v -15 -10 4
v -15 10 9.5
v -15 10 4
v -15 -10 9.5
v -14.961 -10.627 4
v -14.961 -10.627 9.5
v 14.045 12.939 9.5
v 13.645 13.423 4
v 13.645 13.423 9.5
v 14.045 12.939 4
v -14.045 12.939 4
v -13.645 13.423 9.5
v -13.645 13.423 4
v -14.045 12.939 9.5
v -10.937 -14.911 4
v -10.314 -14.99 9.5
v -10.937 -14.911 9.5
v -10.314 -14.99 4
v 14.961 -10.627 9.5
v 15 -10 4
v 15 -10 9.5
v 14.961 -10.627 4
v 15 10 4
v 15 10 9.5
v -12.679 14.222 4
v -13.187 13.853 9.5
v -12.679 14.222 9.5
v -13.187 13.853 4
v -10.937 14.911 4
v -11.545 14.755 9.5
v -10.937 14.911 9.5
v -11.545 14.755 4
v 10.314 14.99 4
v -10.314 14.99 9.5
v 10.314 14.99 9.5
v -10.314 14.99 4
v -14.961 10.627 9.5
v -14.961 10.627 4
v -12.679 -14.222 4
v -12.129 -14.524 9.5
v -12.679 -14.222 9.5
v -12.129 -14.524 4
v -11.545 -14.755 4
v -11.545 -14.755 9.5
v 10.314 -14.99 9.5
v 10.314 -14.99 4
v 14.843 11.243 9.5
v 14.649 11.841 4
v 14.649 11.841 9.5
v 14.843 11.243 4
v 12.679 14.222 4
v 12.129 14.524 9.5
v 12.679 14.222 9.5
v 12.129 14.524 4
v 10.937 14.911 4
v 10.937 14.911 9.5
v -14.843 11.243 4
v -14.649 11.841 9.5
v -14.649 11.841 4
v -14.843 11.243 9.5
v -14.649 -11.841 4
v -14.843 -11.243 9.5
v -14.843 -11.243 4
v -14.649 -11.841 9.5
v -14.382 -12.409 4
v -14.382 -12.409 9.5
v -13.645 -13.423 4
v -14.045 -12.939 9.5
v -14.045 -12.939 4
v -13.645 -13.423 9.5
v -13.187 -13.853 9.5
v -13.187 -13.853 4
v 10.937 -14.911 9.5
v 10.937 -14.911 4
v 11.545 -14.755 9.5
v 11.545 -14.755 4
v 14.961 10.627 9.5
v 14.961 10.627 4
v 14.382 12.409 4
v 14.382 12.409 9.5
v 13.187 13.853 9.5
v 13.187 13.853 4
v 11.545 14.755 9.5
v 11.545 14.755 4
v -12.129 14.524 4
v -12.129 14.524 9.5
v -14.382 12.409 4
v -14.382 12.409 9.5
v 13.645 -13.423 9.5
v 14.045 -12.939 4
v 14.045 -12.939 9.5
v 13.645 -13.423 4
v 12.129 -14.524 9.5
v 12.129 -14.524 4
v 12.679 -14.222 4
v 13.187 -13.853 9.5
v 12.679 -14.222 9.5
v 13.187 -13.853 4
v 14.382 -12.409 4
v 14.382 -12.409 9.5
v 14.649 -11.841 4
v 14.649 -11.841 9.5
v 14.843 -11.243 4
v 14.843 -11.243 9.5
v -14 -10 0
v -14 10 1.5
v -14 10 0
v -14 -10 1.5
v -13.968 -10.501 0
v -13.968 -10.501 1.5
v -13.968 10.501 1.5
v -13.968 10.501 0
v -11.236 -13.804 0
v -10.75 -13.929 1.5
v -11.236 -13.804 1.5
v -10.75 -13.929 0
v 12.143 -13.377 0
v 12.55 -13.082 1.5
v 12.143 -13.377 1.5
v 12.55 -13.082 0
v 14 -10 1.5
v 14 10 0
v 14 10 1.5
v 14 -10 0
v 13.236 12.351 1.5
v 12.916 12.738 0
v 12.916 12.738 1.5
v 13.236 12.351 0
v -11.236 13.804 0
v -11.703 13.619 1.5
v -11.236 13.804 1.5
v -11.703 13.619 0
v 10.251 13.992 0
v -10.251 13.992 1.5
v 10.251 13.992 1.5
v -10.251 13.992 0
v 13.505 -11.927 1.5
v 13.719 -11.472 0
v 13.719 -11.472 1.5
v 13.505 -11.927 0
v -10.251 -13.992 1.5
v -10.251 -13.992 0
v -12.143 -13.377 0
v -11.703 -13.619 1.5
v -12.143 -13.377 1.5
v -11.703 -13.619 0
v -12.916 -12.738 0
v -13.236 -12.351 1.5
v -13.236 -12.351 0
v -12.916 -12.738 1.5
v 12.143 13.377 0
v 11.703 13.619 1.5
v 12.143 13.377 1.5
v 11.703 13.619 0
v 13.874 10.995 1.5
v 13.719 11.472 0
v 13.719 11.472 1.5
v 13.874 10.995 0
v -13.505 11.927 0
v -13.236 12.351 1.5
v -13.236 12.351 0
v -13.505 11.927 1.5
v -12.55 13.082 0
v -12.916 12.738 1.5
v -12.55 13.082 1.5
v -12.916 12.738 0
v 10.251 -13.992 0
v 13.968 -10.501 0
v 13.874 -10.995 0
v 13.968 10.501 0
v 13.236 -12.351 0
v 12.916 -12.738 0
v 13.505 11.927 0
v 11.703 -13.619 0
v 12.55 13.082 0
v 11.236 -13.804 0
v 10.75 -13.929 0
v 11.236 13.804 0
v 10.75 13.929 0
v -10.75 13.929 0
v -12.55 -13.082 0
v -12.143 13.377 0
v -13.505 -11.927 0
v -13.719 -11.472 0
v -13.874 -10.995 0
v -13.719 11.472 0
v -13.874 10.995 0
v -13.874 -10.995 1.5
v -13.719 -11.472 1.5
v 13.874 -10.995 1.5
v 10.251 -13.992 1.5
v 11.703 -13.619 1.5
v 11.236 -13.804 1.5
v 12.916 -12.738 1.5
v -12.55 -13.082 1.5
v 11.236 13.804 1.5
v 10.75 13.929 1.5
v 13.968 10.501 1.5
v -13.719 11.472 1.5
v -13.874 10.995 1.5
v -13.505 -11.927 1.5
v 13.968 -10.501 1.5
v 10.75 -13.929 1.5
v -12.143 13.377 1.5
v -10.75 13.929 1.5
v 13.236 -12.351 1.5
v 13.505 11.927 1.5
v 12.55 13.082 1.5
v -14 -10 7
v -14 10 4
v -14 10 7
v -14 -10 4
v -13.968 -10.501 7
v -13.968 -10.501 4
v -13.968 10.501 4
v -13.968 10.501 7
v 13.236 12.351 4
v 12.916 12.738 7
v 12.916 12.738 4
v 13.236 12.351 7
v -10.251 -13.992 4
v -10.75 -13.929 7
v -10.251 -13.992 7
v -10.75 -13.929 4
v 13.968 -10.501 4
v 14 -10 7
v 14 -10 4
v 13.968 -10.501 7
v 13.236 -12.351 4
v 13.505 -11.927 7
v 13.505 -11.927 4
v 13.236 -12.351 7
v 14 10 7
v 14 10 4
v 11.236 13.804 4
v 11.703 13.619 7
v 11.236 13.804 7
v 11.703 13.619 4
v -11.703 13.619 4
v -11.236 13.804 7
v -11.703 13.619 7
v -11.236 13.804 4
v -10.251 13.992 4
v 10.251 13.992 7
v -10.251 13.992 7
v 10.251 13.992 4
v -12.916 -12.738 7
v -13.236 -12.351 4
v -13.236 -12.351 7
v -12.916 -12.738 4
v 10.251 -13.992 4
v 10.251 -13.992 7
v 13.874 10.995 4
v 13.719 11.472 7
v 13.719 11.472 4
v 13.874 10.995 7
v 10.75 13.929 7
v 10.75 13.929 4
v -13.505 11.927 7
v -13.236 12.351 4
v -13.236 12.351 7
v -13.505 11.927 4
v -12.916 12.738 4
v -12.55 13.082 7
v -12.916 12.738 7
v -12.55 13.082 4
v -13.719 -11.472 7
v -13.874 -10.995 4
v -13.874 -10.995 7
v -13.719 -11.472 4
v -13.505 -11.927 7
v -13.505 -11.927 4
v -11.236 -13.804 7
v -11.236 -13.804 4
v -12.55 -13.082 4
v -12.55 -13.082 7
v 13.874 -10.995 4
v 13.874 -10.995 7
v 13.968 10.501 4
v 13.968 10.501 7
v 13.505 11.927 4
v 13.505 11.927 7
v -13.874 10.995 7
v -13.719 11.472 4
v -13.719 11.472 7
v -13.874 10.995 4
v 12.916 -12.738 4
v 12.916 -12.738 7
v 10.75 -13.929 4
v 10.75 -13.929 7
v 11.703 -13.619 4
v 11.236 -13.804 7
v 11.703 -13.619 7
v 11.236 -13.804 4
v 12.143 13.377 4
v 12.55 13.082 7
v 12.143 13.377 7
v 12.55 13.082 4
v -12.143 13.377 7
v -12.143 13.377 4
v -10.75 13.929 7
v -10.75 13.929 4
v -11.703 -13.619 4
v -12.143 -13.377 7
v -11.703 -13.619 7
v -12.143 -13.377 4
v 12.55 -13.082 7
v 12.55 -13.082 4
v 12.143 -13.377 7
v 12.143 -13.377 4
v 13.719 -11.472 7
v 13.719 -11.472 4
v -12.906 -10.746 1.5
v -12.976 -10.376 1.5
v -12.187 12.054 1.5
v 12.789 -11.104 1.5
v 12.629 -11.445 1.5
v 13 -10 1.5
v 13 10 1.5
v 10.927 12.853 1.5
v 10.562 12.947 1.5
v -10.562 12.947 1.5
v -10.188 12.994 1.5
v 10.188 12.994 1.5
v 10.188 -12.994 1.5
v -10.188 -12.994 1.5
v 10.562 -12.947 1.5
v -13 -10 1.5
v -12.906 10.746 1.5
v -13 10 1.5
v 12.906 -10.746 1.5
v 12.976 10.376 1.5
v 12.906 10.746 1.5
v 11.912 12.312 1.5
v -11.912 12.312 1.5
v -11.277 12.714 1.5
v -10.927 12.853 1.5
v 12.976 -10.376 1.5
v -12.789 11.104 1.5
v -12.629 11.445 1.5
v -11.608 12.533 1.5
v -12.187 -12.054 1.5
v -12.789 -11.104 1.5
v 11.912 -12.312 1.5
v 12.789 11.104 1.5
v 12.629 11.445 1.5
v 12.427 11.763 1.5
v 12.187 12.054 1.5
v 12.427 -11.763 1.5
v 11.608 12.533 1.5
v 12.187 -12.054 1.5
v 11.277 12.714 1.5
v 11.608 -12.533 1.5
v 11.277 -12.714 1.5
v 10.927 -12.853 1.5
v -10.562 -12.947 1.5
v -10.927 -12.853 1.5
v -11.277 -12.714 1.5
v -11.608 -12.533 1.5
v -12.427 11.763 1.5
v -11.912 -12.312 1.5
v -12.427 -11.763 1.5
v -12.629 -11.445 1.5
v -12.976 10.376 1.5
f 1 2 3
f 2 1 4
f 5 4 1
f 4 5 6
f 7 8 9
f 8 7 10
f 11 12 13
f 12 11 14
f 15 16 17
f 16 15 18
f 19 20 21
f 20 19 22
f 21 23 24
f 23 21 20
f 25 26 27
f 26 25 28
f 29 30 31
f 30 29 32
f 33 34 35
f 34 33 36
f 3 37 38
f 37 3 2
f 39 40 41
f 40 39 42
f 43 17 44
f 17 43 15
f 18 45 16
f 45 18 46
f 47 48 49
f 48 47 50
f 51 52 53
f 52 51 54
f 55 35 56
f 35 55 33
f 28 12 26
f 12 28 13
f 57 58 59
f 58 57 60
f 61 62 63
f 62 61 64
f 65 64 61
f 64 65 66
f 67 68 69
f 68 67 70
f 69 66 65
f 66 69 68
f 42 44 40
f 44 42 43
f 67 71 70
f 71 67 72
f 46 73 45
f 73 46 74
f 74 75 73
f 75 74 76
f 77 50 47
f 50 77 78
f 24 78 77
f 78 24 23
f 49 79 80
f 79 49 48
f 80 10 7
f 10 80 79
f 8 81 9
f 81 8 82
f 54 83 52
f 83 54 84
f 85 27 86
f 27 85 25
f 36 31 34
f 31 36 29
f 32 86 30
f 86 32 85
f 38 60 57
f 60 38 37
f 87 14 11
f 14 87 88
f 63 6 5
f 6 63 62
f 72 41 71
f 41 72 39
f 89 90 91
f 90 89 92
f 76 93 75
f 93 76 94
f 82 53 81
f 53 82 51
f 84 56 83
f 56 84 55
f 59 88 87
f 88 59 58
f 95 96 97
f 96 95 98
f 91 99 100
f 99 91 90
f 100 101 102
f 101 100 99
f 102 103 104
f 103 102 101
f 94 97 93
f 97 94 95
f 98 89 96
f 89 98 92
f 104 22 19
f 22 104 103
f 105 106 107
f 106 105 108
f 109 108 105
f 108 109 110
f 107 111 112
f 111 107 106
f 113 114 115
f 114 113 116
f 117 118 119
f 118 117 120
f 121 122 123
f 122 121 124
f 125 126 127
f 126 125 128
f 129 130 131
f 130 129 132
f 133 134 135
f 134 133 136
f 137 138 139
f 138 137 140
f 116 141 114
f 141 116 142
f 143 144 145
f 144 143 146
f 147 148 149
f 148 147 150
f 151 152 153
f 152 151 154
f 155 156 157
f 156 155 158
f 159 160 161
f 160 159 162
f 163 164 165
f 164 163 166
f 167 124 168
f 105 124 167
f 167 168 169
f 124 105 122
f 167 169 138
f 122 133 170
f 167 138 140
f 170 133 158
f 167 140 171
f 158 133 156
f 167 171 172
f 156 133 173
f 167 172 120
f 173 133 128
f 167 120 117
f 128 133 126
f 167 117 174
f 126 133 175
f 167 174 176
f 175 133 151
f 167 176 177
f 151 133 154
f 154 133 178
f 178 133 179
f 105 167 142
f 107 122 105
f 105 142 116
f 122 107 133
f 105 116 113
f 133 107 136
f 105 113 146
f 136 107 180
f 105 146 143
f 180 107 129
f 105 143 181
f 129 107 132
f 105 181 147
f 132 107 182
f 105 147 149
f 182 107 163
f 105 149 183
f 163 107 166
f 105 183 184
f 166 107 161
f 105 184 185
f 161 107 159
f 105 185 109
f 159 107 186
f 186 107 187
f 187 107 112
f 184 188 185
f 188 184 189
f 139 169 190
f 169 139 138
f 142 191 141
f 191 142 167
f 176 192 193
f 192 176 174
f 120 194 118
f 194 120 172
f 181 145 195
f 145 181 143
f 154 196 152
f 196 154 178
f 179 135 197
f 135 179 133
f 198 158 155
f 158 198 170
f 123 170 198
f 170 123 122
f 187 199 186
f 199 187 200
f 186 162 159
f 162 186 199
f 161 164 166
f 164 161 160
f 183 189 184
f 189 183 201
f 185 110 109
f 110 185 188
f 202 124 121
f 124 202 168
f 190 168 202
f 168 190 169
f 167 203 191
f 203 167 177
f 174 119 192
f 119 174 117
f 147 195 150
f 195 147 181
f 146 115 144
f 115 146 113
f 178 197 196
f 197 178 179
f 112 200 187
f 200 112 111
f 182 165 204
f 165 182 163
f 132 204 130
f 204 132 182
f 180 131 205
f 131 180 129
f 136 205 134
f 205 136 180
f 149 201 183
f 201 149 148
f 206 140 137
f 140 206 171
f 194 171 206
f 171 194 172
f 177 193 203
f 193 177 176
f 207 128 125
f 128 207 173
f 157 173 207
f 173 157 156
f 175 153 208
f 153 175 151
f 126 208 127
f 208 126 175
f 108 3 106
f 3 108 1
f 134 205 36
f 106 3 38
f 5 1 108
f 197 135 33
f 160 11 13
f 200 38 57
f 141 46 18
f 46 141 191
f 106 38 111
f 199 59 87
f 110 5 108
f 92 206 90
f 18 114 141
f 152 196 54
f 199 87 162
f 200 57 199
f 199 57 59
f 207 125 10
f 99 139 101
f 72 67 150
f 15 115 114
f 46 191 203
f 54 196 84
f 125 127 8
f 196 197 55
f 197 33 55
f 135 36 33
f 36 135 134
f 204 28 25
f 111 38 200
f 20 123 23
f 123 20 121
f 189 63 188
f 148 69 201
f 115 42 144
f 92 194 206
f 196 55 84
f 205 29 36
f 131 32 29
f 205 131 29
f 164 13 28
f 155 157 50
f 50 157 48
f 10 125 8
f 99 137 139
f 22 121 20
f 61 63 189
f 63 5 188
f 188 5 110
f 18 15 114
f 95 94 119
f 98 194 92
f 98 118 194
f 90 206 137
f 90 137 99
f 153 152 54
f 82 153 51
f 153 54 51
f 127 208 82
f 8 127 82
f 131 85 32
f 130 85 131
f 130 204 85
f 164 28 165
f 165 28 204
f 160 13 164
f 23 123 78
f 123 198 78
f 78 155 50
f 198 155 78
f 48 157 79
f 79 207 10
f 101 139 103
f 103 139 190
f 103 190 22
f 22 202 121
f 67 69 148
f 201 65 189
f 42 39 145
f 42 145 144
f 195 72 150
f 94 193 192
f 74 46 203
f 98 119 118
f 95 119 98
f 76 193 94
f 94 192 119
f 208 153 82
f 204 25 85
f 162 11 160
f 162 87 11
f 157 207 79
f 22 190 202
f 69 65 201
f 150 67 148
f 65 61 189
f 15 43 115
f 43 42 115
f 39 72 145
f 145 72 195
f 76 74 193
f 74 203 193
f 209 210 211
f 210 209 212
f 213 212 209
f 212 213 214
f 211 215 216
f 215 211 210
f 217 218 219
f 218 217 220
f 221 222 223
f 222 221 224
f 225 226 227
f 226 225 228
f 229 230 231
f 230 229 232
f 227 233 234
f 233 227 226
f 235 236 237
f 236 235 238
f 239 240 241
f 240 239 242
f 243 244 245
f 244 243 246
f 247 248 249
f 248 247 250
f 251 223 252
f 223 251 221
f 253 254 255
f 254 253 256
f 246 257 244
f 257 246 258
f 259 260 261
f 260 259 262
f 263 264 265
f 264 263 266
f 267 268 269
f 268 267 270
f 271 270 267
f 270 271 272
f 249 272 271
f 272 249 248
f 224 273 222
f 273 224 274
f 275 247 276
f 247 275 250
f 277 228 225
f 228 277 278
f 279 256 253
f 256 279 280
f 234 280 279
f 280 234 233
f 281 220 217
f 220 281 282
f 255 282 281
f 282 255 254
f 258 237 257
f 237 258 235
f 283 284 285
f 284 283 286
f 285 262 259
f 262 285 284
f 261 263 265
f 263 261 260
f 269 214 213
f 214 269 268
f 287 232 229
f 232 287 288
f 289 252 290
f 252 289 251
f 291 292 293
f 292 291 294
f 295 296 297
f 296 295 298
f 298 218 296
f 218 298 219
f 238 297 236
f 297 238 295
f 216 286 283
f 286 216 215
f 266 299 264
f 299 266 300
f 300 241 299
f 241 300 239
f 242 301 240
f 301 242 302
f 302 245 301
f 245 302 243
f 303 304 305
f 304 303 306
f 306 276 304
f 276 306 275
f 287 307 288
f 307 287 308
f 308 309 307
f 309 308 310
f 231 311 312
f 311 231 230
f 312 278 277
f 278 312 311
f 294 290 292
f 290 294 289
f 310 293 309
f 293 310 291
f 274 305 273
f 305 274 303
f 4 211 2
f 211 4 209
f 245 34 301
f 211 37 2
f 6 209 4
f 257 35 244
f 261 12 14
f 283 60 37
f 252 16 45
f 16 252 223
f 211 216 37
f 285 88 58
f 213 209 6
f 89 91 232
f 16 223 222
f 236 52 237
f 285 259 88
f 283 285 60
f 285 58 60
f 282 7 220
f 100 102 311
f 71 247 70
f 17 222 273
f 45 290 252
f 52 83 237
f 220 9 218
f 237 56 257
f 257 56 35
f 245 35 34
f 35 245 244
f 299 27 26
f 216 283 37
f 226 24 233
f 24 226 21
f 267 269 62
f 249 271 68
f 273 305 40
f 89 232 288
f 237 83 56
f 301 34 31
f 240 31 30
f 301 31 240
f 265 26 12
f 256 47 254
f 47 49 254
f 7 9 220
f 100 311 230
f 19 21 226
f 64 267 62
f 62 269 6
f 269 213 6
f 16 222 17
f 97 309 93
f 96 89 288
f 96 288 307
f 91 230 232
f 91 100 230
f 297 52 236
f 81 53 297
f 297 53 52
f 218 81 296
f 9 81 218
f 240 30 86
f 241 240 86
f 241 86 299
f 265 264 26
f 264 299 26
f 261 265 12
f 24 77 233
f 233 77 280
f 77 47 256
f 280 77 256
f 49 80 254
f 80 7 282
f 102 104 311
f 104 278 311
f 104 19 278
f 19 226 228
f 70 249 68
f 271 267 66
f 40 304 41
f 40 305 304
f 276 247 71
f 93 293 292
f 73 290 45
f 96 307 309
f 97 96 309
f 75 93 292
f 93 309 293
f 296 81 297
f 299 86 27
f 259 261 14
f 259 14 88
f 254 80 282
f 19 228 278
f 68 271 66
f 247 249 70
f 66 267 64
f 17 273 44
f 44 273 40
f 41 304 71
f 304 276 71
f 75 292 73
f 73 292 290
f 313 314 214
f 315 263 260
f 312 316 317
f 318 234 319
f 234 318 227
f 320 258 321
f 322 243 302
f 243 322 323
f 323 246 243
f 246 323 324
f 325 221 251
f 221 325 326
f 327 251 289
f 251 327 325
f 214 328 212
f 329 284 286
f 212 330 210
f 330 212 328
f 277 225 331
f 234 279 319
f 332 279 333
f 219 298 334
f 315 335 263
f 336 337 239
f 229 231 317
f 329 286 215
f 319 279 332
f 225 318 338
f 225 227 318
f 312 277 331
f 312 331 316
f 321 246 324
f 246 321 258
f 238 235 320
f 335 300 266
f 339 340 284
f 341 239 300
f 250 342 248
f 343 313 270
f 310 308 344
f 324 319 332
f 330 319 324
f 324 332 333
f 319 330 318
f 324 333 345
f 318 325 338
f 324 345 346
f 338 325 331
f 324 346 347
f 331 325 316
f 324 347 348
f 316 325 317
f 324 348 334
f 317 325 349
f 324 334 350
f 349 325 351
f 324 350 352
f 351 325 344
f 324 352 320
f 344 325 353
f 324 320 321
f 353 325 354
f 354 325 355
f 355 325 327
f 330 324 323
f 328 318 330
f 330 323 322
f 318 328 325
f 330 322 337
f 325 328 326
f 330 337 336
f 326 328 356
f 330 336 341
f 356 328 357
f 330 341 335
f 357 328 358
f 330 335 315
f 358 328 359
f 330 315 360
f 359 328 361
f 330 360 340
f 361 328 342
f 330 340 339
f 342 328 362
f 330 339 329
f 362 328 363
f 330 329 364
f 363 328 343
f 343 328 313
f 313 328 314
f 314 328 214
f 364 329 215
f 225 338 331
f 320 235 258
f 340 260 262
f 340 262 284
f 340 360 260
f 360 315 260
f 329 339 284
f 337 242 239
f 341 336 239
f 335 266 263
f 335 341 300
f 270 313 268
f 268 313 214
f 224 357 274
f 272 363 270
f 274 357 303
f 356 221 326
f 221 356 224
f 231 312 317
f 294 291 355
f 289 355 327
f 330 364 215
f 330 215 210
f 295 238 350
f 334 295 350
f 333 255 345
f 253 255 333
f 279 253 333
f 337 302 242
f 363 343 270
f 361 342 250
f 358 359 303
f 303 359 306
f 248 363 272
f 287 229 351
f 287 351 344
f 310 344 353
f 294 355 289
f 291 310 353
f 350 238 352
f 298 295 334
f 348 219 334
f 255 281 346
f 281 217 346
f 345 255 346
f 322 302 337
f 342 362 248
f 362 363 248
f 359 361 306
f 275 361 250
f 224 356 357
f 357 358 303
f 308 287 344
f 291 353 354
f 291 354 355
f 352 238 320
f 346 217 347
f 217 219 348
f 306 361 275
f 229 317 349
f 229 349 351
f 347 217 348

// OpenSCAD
$fn = 50;


difference() {
	union() {
		translate(v = [0, 0, 4.0000000000]) {
			hull() {
				translate(v = [-10.0000000000, 10.0000000000, 0]) {
					cylinder(h = 5.5000000000, r = 5);
				}
				translate(v = [10.0000000000, 10.0000000000, 0]) {
					cylinder(h = 5.5000000000, r = 5);
				}
				translate(v = [-10.0000000000, -10.0000000000, 0]) {
					cylinder(h = 5.5000000000, r = 5);
				}
				translate(v = [10.0000000000, -10.0000000000, 0]) {
					cylinder(h = 5.5000000000, r = 5);
				}
			}
		}
		hull() {
			translate(v = [-10.0000000000, 10.0000000000, 0]) {
				cylinder(h = 1.5000000000, r = 4);
			}
			translate(v = [10.0000000000, 10.0000000000, 0]) {
				cylinder(h = 1.5000000000, r = 4);
			}
			translate(v = [-10.0000000000, -10.0000000000, 0]) {
				cylinder(h = 1.5000000000, r = 4);
			}
			translate(v = [10.0000000000, -10.0000000000, 0]) {
				cylinder(h = 1.5000000000, r = 4);
			}
		}
		translate(v = [0, 0, 1.5000000000]) {
			hull() {
				translate(v = [-10.0000000000, 10.0000000000, 0]) {
					cylinder(h = 2.5000000000, r1 = 4, r2 = 5.0000000000);
				}
				translate(v = [10.0000000000, 10.0000000000, 0]) {
					cylinder(h = 2.5000000000, r1 = 4, r2 = 5.0000000000);
				}
				translate(v = [-10.0000000000, -10.0000000000, 0]) {
					cylinder(h = 2.5000000000, r1 = 4, r2 = 5.0000000000);
				}
				translate(v = [10.0000000000, -10.0000000000, 0]) {
					cylinder(h = 2.5000000000, r1 = 4, r2 = 5.0000000000);
				}
			}
		}
	}
	union() {
		translate(v = [0, 0, 4.0000000000]) {
			#hull() {
				translate(v = [-10.0000000000, 10.0000000000, 0]) {
					cylinder(h = 5.5000000000, r = 4);
				}
				translate(v = [10.0000000000, 10.0000000000, 0]) {
					cylinder(h = 5.5000000000, r = 4);
				}
				translate(v = [-10.0000000000, -10.0000000000, 0]) {
					cylinder(h = 5.5000000000, r = 4);
				}
				translate(v = [10.0000000000, -10.0000000000, 0]) {
					cylinder(h = 5.5000000000, r = 4);
				}
			}
		}
		translate(v = [0, 0, 7]) {
			hull() {
				translate(v = [-10.0000000000, 10.0000000000, 0]) {
					cylinder(h = 2.5000000000, r1 = 4, r2 = 5.0000000000);
				}
				translate(v = [10.0000000000, 10.0000000000, 0]) {
					cylinder(h = 2.5000000000, r1 = 4, r2 = 5.0000000000);
				}
				translate(v = [-10.0000000000, -10.0000000000, 0]) {
					cylinder(h = 2.5000000000, r1 = 4, r2 = 5.0000000000);
				}
				translate(v = [10.0000000000, -10.0000000000, 0]) {
					cylinder(h = 2.5000000000, r1 = 4, r2 = 5.0000000000);
				}
			}
		}
		translate(v = [0, 0, 1.5000000000]) {
			#hull() {
				translate(v = [-10.0000000000, 10.0000000000, 0]) {
					cylinder(h = 2.5000000000, r1 = 3, r2 = 4.0000000000);
				}
				translate(v = [10.0000000000, 10.0000000000, 0]) {
					cylinder(h = 2.5000000000, r1 = 3, r2 = 4.0000000000);
				}
				translate(v = [-10.0000000000, -10.0000000000, 0]) {
					cylinder(h = 2.5000000000, r1 = 3, r2 = 4.0000000000);
				}
				translate(v = [10.0000000000, -10.0000000000, 0]) {
					cylinder(h = 2.5000000000, r1 = 3, r2 = 4.0000000000);
				}
			}
		}
	}
}
